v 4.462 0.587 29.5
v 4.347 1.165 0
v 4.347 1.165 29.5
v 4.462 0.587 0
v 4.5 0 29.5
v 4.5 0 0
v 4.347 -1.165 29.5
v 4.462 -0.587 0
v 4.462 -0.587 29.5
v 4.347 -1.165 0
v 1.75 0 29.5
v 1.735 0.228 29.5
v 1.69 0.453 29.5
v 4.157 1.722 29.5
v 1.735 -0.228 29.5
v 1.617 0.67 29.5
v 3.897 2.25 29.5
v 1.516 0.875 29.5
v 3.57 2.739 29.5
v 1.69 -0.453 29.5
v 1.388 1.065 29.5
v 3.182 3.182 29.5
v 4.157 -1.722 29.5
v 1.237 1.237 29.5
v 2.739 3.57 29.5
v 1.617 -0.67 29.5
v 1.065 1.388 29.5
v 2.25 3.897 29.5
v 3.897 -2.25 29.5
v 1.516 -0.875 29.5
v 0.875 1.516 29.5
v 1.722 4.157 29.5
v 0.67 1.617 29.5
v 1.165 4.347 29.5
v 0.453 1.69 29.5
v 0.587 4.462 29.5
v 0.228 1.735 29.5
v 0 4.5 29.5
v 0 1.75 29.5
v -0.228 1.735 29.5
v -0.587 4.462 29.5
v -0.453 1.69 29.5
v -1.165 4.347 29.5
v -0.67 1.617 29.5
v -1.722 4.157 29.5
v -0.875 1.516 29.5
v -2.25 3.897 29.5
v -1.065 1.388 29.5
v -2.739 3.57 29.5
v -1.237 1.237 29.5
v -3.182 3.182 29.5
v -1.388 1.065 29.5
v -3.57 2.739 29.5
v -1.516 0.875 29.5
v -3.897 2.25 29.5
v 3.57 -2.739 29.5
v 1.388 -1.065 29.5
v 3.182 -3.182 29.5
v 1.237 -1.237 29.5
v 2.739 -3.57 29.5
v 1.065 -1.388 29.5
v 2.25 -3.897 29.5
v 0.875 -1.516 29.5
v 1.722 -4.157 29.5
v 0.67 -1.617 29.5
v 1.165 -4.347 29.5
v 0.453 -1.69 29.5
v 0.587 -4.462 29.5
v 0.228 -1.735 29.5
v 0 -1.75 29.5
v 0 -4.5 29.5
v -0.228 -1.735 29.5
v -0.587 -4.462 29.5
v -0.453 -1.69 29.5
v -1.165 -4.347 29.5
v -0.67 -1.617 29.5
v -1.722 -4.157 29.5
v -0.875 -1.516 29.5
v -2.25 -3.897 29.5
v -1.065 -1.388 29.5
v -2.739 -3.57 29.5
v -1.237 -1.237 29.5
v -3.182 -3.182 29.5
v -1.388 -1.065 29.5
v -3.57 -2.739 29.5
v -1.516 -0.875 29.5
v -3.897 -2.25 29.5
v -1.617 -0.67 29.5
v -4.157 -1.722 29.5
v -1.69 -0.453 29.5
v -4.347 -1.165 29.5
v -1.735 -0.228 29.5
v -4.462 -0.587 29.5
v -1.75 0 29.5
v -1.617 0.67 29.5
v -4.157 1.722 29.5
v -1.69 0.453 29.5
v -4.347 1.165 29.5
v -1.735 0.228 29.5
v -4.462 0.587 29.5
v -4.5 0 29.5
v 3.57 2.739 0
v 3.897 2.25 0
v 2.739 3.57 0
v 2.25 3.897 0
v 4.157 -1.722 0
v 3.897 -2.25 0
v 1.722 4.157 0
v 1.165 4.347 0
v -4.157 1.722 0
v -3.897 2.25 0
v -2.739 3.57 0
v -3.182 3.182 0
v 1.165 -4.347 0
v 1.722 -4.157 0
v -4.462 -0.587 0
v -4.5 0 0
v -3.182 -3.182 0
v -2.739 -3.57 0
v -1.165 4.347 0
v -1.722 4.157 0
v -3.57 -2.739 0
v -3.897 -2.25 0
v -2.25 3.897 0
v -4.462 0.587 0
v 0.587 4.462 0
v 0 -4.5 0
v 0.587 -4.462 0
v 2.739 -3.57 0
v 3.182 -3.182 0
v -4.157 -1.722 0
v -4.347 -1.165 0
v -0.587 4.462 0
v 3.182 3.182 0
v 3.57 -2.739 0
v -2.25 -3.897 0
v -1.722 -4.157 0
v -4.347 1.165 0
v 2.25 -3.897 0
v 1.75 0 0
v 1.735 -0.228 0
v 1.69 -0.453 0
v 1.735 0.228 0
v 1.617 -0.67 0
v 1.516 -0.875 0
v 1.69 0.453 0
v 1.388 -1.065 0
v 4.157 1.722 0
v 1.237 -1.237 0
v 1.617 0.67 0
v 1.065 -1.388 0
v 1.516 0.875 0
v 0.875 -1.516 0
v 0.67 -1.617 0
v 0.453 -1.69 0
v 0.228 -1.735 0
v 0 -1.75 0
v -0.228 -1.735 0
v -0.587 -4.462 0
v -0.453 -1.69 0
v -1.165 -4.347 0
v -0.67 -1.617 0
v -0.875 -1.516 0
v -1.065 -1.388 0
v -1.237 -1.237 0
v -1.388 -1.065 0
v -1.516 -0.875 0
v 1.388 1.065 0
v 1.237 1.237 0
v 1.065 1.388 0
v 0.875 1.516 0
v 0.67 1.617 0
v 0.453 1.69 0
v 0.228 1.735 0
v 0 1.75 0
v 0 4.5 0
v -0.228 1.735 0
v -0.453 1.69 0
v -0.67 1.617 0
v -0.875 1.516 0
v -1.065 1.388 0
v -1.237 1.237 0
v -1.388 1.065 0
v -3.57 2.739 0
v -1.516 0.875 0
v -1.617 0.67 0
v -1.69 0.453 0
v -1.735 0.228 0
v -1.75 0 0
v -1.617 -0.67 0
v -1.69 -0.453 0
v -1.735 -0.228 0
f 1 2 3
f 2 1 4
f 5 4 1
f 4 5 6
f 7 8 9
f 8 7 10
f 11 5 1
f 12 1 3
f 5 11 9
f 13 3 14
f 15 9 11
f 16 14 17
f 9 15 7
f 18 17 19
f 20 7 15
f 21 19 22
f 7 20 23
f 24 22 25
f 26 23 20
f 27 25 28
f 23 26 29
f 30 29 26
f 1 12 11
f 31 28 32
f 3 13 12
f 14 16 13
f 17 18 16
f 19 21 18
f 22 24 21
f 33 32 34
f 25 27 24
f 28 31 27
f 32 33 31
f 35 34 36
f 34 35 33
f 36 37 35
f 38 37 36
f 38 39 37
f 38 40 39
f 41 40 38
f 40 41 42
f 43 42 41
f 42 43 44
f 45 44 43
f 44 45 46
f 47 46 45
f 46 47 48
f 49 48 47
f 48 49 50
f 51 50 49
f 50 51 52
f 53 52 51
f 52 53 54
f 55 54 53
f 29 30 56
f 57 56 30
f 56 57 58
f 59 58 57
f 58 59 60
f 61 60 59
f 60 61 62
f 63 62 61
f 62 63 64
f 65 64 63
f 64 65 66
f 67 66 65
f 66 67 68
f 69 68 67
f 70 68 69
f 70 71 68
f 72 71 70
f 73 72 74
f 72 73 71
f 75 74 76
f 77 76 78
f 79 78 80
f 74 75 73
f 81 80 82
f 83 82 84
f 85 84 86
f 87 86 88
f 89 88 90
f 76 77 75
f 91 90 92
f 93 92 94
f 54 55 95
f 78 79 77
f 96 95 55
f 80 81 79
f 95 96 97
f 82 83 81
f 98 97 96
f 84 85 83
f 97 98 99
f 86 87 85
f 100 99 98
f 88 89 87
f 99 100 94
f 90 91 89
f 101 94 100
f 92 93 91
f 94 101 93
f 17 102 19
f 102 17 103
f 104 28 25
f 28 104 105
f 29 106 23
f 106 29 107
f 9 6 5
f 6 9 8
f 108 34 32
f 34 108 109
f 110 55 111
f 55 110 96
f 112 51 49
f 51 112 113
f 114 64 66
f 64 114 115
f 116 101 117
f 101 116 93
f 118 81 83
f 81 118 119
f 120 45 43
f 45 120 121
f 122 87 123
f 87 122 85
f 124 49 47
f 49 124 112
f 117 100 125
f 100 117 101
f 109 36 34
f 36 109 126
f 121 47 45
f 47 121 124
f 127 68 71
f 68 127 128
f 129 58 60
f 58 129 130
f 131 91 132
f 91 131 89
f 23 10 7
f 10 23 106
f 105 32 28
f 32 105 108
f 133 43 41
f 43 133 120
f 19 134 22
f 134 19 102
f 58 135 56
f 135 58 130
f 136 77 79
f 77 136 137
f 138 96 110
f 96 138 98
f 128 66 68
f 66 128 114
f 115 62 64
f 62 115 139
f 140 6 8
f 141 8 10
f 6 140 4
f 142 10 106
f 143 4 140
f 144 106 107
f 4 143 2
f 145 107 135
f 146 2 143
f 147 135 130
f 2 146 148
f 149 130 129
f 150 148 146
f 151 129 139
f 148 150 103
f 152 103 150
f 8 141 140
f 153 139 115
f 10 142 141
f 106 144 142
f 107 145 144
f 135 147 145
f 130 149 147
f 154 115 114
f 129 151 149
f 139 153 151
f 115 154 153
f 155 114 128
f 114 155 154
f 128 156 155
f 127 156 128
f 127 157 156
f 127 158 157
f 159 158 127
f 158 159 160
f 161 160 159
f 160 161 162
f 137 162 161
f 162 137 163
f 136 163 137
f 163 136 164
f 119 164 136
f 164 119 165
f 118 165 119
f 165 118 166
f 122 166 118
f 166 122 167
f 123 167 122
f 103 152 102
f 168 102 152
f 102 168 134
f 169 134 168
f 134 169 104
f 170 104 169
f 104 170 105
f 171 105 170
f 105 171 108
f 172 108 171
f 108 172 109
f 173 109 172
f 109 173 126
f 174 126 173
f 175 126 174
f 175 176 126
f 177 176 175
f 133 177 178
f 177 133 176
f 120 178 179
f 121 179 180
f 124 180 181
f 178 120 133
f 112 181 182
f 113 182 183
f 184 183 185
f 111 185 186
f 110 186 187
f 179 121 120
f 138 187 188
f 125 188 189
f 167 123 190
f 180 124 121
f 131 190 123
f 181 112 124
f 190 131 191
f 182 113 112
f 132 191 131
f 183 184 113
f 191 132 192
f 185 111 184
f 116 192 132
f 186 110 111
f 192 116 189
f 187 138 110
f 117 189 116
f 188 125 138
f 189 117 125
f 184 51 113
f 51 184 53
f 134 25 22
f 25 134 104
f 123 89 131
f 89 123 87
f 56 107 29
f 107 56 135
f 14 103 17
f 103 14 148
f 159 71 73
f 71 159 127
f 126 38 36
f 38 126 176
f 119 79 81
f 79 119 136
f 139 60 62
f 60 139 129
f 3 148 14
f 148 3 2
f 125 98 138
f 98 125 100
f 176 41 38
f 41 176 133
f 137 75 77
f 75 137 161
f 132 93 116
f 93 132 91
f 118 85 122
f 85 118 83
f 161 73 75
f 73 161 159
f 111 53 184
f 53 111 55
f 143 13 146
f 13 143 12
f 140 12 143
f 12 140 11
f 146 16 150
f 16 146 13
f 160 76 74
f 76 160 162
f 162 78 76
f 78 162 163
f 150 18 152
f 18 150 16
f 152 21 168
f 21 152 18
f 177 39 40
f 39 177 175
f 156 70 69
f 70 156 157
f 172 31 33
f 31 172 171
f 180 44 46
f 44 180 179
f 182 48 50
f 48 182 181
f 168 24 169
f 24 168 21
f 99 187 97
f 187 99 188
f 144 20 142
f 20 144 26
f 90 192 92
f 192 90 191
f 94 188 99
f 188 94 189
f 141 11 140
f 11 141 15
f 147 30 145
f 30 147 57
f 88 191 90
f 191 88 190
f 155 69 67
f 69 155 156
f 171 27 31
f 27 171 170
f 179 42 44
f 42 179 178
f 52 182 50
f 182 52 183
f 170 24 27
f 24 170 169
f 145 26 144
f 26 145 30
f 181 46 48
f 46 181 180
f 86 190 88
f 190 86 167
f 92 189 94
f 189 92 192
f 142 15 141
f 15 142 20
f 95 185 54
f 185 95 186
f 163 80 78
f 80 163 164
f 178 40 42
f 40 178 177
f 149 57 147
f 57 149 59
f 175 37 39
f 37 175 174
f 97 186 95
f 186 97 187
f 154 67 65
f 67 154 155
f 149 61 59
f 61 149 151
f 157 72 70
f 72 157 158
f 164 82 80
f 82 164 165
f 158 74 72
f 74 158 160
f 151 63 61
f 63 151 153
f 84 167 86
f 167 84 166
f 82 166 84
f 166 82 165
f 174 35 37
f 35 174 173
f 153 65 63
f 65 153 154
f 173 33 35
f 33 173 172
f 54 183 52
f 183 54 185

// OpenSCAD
// Gen-DP — frame standoff tube between stator and an endbell, on each M3 frame rod (outside rotor OD).
// Print x4. Height = frame_standoff_h (rotor + steel + hub + collar + running clearance).
include <parameters.scad>;
$fn = 48;
difference() {
    cylinder(d=standoff_od, h=frame_standoff_h);
    translate([0, 0, -0.1]) cylinder(d=m3_clear, h=frame_standoff_h + 0.2);
}
